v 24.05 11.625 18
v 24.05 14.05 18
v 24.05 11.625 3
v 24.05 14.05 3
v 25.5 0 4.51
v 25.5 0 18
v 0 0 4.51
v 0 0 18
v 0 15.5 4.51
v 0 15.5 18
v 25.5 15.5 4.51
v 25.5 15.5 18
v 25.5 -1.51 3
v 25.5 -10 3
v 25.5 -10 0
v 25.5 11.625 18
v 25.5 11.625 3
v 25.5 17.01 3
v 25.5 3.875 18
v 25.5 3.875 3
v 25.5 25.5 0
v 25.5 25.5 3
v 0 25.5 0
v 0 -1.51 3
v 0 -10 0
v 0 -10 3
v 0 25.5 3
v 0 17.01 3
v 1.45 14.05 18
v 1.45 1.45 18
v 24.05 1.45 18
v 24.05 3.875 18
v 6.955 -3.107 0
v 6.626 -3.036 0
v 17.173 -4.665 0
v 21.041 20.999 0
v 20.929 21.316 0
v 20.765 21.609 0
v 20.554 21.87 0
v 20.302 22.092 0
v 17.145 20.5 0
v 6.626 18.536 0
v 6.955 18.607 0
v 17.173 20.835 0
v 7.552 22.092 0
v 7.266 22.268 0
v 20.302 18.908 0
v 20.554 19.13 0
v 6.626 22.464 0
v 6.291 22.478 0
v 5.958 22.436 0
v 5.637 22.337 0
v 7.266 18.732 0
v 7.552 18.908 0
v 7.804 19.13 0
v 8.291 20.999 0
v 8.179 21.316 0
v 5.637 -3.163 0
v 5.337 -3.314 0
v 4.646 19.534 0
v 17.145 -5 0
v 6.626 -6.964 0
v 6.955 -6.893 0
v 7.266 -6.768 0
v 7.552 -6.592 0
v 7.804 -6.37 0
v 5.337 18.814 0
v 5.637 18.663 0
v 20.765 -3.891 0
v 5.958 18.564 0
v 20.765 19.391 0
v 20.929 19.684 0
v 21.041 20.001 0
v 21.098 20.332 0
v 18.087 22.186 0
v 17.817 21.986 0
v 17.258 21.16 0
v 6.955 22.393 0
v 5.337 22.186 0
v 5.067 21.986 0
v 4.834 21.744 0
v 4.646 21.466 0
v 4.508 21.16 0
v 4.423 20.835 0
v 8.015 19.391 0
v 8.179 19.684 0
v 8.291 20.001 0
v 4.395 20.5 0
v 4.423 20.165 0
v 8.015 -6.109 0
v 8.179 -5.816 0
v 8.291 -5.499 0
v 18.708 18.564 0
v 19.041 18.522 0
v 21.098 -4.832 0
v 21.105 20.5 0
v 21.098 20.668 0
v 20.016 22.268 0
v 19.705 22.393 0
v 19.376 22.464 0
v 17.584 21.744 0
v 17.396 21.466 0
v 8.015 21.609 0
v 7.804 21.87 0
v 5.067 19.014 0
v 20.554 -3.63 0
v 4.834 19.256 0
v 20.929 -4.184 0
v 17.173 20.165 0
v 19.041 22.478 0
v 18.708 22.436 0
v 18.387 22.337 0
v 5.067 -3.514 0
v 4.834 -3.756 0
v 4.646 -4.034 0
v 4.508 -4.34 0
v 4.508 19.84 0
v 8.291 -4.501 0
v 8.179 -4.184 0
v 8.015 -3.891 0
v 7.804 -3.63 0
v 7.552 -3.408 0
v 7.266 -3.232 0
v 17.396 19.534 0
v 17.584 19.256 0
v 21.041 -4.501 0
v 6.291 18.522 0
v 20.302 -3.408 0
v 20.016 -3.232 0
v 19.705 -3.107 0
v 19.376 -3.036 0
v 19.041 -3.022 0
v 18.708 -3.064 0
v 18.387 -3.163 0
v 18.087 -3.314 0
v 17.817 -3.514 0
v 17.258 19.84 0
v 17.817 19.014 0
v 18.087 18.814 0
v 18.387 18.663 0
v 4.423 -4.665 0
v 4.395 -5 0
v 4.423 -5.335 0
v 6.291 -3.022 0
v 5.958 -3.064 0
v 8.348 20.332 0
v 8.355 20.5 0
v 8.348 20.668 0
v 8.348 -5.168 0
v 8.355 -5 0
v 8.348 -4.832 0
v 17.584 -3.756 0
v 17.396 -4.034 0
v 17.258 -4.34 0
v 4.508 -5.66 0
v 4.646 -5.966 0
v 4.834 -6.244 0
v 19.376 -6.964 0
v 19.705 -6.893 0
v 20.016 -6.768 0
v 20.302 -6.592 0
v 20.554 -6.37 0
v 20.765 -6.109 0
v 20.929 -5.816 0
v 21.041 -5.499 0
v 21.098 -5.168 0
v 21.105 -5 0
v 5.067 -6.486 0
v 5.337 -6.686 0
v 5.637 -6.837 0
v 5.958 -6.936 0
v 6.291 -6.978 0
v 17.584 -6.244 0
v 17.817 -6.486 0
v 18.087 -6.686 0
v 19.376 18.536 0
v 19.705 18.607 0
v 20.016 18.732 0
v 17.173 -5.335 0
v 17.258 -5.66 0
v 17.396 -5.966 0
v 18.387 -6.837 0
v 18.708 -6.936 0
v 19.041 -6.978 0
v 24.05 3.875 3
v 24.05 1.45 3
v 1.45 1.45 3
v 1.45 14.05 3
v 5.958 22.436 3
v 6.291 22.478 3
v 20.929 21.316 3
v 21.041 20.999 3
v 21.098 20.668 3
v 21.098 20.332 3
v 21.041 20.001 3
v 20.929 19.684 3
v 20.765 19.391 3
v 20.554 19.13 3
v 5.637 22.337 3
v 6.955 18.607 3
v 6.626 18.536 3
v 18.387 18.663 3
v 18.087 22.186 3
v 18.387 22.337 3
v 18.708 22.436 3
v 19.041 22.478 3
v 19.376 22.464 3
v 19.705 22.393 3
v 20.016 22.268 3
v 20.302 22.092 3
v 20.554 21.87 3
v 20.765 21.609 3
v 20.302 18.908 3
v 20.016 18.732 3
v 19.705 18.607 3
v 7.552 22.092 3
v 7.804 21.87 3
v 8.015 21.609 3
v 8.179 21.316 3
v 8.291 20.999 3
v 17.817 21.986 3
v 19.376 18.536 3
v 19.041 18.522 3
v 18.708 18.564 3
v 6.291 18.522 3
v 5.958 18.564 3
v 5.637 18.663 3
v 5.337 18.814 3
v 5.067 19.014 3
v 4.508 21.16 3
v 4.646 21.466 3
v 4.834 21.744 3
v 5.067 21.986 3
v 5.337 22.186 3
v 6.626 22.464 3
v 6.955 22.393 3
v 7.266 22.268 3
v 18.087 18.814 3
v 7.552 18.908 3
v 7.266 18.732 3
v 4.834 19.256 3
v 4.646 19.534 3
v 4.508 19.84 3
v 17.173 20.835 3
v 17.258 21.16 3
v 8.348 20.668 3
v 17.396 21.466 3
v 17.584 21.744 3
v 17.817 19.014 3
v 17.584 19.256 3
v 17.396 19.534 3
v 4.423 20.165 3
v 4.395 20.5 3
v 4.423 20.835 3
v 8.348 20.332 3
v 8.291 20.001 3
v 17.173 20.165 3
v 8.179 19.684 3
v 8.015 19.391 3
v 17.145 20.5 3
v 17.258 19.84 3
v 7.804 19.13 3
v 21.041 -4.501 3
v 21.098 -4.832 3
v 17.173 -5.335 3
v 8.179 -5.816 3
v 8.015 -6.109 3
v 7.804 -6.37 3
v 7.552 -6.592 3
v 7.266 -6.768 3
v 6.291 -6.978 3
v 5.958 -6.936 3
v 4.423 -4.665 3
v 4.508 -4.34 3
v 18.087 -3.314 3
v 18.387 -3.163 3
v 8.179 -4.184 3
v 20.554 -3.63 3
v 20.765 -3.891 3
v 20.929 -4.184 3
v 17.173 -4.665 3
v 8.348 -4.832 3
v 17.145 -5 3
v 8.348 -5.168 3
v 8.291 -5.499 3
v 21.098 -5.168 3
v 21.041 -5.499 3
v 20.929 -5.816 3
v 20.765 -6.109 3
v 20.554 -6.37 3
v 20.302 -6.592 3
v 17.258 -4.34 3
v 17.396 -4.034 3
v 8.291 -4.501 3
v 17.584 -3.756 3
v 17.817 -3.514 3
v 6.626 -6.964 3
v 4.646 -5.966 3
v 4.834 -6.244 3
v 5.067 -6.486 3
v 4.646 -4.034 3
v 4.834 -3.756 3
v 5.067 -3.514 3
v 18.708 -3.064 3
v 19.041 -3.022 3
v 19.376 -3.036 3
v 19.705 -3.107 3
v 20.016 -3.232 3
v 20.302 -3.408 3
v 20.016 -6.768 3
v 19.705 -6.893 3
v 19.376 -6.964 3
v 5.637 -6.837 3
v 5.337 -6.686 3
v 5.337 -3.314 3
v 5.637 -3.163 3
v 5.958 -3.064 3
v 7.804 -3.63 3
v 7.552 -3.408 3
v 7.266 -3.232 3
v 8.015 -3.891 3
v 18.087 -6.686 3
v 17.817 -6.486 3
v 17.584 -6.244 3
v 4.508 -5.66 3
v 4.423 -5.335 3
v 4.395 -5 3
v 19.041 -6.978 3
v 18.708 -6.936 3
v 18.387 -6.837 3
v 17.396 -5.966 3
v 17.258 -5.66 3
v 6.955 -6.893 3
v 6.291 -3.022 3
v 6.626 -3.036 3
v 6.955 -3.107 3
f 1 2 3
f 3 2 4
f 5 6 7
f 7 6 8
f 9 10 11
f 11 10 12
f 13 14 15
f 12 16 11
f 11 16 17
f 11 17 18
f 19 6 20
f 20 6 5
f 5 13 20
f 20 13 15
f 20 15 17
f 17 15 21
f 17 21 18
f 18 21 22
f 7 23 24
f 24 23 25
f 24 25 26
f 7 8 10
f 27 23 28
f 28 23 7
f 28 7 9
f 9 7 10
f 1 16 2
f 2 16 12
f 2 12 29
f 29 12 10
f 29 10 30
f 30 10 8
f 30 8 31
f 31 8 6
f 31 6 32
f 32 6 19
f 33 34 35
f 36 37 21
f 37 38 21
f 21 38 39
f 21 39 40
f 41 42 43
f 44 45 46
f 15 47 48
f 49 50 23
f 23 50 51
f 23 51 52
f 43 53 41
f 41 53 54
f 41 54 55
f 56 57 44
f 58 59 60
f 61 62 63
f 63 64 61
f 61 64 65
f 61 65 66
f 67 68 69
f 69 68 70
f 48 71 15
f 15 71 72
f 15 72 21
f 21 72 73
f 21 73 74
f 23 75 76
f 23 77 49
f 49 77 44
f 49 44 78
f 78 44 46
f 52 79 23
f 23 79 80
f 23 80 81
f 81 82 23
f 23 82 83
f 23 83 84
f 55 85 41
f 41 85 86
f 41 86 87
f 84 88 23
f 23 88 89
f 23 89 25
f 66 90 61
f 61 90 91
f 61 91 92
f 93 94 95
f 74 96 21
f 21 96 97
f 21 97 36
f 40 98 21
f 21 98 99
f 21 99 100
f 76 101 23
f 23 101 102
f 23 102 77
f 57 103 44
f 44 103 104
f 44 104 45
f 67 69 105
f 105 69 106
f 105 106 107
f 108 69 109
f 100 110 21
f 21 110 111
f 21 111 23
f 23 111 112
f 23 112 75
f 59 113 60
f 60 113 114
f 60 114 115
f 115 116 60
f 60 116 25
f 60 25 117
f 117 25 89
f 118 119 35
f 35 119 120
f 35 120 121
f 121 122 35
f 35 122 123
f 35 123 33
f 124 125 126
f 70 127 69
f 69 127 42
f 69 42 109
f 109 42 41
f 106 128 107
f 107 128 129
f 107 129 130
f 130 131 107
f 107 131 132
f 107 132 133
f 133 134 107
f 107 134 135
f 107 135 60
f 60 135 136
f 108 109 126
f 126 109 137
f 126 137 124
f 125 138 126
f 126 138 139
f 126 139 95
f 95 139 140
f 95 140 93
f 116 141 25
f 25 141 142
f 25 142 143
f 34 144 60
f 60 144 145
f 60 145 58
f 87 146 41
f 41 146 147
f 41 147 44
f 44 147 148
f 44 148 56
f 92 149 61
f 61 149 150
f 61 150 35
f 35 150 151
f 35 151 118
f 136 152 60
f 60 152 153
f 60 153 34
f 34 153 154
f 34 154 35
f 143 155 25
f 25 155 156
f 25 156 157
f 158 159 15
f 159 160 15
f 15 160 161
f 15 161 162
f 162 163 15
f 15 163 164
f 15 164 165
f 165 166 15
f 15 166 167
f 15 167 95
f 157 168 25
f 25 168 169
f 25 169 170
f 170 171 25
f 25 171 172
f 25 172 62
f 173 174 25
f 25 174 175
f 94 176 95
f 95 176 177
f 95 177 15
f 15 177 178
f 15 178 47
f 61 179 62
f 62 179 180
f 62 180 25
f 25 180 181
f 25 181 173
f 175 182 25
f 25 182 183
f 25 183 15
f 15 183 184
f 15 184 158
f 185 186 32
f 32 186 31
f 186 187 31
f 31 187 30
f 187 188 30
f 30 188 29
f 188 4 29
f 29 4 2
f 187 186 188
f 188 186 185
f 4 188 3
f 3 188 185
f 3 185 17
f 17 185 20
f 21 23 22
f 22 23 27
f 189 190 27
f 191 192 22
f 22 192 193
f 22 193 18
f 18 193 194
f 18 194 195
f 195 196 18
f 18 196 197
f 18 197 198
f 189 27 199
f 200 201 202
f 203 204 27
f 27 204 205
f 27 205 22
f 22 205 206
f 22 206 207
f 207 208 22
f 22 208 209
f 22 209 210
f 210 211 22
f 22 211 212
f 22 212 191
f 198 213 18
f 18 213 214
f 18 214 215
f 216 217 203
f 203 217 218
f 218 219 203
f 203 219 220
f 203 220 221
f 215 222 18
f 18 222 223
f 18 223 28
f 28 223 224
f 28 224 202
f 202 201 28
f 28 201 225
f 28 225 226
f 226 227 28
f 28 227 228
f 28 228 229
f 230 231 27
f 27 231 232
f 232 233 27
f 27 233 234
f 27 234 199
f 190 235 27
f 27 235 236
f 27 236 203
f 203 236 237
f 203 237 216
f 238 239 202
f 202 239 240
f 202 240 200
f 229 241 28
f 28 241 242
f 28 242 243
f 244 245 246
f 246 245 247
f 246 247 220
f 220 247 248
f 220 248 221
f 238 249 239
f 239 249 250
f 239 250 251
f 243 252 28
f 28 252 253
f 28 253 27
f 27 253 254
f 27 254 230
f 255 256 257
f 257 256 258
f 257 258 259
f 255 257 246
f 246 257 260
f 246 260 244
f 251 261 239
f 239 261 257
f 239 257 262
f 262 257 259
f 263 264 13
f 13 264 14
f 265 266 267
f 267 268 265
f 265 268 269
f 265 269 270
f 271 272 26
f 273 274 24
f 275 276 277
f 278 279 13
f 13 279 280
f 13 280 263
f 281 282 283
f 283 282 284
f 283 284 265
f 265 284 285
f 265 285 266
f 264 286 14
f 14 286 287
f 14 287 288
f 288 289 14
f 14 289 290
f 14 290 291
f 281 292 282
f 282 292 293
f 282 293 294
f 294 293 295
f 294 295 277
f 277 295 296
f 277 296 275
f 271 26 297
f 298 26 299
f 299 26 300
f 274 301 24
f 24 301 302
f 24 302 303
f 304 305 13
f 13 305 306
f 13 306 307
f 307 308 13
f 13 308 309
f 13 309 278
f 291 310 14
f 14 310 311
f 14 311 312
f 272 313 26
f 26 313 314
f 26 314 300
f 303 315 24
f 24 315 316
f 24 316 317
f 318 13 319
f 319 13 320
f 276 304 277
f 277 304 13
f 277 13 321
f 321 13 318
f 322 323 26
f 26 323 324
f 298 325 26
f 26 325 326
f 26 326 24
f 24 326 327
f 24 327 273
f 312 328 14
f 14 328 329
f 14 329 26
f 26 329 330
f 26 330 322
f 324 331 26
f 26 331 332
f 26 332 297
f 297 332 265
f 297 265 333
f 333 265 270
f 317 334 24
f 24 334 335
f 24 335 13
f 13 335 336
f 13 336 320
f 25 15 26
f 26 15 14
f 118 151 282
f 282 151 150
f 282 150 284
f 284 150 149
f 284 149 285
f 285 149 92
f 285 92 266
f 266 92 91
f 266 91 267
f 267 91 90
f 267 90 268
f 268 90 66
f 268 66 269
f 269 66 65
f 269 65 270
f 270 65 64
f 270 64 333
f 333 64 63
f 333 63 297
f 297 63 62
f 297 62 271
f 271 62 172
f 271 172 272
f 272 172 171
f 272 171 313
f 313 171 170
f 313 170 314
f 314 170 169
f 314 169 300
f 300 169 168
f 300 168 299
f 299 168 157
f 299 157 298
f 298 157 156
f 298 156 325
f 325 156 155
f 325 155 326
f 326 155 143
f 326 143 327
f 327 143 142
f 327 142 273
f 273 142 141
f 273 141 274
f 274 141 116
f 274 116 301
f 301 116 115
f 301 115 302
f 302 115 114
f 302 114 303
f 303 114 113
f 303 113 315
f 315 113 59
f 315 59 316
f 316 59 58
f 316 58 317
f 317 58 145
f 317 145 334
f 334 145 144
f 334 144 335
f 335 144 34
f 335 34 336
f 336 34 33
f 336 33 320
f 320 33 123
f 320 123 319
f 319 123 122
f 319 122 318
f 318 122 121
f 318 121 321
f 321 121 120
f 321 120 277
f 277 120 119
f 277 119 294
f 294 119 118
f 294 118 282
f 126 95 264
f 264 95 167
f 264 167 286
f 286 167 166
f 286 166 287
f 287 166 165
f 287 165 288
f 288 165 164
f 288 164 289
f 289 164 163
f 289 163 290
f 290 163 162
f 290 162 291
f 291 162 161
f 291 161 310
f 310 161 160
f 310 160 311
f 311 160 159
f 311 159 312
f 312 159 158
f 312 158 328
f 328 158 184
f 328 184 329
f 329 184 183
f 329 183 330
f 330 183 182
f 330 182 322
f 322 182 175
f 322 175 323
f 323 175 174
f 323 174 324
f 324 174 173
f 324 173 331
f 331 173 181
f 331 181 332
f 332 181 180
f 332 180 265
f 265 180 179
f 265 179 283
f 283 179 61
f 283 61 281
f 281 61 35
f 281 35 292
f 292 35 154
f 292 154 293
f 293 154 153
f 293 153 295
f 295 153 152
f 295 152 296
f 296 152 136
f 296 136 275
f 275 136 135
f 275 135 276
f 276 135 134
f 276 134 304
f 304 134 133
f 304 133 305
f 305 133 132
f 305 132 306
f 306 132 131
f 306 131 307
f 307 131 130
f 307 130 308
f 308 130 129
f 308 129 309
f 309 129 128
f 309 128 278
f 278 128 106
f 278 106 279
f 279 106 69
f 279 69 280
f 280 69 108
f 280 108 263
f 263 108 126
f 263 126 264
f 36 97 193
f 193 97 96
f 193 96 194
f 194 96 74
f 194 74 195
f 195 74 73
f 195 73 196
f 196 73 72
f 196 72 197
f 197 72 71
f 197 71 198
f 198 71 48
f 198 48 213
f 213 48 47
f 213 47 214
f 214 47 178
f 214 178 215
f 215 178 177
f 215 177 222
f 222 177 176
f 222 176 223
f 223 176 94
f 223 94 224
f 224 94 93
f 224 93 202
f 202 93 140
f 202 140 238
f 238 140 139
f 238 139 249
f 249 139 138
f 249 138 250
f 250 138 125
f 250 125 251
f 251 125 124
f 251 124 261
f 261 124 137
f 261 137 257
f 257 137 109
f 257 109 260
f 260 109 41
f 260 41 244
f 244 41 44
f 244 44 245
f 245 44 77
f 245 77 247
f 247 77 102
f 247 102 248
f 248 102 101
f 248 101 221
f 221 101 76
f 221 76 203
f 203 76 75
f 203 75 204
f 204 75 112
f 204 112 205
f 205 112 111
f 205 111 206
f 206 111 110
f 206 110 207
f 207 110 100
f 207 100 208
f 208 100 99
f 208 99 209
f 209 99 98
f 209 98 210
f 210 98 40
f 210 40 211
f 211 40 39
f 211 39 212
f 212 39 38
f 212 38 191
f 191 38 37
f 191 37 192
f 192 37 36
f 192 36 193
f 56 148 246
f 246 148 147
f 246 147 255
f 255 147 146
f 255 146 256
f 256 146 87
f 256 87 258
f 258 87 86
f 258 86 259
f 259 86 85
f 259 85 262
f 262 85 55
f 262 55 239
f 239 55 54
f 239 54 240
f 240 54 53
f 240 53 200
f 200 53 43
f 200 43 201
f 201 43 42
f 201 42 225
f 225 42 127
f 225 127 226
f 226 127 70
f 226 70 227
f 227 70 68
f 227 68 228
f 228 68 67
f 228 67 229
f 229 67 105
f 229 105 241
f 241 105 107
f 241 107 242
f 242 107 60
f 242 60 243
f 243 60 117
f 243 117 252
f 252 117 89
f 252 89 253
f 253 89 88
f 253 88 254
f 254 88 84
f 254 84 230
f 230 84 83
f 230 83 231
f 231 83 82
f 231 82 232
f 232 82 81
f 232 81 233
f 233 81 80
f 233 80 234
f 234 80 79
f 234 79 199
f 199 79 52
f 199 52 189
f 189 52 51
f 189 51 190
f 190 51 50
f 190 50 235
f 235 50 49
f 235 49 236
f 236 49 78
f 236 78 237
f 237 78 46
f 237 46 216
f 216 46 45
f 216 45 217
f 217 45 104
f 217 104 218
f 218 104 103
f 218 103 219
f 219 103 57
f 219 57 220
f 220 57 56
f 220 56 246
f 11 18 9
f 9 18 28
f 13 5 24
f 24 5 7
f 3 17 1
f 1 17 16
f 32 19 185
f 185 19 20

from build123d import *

# Parameters (mm, degrees)
SKETCH3_W                = 25.5
SKETCH3_H                = 15.5
BOSS_EXTRUDE2_DEPTH      = 18
SKETCH4_W                = 22.6
SKETCH4_H                = 12.6
CUT_EXTRUDE1_DEPTH       = 15
SKETCH7_W                = 25.5
SKETCH7_H                = 3
BOSS_EXTRUDE4_DEPTH      = 10
BOSS_EXTRUDE4_DEPTH_BACK = 25.5
SKETCH8_R                = 1.98
CUT_EXTRUDE2_DEPTH       = 16
CUT_EXTRUDE2_DEPTH_BACK  = 31
BOSS_EXTRUDE5_DEPTH      = 25.5
SKETCH10_W               = 15
SKETCH10_H               = 7.75
CUT_EXTRUDE3_DEPTH       = 5
CUT_EXTRUDE3_DEPTH_BACK  = 9


with BuildPart() as part:
    # Sketch3 → Boss-Extrude2 (new body)
    with BuildSketch(Plane.XY):
        with Locations((12.75, 7.75)):
            Rectangle(SKETCH3_W, SKETCH3_H)
    extrude(amount=BOSS_EXTRUDE2_DEPTH)

    # Sketch4 → Cut-Extrude1 (cut)
    with BuildSketch(Plane.XY.offset(18)):
        with Locations((12.750003743, 7.749991635)):
            Rectangle(SKETCH4_W, SKETCH4_H)
    extrude(amount=-CUT_EXTRUDE1_DEPTH, mode=Mode.SUBTRACT)

    # Sketch7 → Boss-Extrude4 (add, two sides)
    with BuildSketch(Plane.XZ) as boss_extrude4_sk:
        with Locations((12.75, 1.5)):
            Rectangle(SKETCH7_W, SKETCH7_H)
    extrude(amount=BOSS_EXTRUDE4_DEPTH)
    extrude(boss_extrude4_sk.sketch, amount=-BOSS_EXTRUDE4_DEPTH_BACK)

    # Sketch8 → Cut-Extrude2 (cut, two sides)
    with BuildSketch(Plane.XY.offset(3)) as cut_extrude2_sk:
        with Locations((19.125, 20.5)):
            Circle(SKETCH8_R)
        with Locations((6.375, -5)):
            Circle(SKETCH8_R)
        with Locations((6.375, 20.5)):
            Circle(SKETCH8_R)
        with Locations((19.125, -5)):
            Circle(SKETCH8_R)
    extrude(amount=CUT_EXTRUDE2_DEPTH, mode=Mode.SUBTRACT)
    extrude(cut_extrude2_sk.sketch, amount=-CUT_EXTRUDE2_DEPTH_BACK, mode=Mode.SUBTRACT)

    # Sketch9 → Boss-Extrude5 (add)
    with BuildSketch(Plane.ZY):
        Polygon((3, 17.01), (3, 15.5), (4.51, 15.5), align=None)
        Polygon((4.51, 0), (3, 0), (3, -1.51), align=None)
    extrude(amount=-BOSS_EXTRUDE5_DEPTH)

    # Sketch10 → Cut-Extrude3 (cut, two sides)
    with BuildSketch(Plane(origin=(25.5, 0, 0), x_dir=(0, 0, -1), z_dir=(1, 0, 0))) as cut_extrude3_sk:
        with Locations((-10.5, 7.75)):
            Rectangle(SKETCH10_W, SKETCH10_H)
    extrude(amount=CUT_EXTRUDE3_DEPTH, mode=Mode.SUBTRACT)
    extrude(cut_extrude3_sk.sketch, amount=-CUT_EXTRUDE3_DEPTH_BACK, mode=Mode.SUBTRACT)


solid = part.part
